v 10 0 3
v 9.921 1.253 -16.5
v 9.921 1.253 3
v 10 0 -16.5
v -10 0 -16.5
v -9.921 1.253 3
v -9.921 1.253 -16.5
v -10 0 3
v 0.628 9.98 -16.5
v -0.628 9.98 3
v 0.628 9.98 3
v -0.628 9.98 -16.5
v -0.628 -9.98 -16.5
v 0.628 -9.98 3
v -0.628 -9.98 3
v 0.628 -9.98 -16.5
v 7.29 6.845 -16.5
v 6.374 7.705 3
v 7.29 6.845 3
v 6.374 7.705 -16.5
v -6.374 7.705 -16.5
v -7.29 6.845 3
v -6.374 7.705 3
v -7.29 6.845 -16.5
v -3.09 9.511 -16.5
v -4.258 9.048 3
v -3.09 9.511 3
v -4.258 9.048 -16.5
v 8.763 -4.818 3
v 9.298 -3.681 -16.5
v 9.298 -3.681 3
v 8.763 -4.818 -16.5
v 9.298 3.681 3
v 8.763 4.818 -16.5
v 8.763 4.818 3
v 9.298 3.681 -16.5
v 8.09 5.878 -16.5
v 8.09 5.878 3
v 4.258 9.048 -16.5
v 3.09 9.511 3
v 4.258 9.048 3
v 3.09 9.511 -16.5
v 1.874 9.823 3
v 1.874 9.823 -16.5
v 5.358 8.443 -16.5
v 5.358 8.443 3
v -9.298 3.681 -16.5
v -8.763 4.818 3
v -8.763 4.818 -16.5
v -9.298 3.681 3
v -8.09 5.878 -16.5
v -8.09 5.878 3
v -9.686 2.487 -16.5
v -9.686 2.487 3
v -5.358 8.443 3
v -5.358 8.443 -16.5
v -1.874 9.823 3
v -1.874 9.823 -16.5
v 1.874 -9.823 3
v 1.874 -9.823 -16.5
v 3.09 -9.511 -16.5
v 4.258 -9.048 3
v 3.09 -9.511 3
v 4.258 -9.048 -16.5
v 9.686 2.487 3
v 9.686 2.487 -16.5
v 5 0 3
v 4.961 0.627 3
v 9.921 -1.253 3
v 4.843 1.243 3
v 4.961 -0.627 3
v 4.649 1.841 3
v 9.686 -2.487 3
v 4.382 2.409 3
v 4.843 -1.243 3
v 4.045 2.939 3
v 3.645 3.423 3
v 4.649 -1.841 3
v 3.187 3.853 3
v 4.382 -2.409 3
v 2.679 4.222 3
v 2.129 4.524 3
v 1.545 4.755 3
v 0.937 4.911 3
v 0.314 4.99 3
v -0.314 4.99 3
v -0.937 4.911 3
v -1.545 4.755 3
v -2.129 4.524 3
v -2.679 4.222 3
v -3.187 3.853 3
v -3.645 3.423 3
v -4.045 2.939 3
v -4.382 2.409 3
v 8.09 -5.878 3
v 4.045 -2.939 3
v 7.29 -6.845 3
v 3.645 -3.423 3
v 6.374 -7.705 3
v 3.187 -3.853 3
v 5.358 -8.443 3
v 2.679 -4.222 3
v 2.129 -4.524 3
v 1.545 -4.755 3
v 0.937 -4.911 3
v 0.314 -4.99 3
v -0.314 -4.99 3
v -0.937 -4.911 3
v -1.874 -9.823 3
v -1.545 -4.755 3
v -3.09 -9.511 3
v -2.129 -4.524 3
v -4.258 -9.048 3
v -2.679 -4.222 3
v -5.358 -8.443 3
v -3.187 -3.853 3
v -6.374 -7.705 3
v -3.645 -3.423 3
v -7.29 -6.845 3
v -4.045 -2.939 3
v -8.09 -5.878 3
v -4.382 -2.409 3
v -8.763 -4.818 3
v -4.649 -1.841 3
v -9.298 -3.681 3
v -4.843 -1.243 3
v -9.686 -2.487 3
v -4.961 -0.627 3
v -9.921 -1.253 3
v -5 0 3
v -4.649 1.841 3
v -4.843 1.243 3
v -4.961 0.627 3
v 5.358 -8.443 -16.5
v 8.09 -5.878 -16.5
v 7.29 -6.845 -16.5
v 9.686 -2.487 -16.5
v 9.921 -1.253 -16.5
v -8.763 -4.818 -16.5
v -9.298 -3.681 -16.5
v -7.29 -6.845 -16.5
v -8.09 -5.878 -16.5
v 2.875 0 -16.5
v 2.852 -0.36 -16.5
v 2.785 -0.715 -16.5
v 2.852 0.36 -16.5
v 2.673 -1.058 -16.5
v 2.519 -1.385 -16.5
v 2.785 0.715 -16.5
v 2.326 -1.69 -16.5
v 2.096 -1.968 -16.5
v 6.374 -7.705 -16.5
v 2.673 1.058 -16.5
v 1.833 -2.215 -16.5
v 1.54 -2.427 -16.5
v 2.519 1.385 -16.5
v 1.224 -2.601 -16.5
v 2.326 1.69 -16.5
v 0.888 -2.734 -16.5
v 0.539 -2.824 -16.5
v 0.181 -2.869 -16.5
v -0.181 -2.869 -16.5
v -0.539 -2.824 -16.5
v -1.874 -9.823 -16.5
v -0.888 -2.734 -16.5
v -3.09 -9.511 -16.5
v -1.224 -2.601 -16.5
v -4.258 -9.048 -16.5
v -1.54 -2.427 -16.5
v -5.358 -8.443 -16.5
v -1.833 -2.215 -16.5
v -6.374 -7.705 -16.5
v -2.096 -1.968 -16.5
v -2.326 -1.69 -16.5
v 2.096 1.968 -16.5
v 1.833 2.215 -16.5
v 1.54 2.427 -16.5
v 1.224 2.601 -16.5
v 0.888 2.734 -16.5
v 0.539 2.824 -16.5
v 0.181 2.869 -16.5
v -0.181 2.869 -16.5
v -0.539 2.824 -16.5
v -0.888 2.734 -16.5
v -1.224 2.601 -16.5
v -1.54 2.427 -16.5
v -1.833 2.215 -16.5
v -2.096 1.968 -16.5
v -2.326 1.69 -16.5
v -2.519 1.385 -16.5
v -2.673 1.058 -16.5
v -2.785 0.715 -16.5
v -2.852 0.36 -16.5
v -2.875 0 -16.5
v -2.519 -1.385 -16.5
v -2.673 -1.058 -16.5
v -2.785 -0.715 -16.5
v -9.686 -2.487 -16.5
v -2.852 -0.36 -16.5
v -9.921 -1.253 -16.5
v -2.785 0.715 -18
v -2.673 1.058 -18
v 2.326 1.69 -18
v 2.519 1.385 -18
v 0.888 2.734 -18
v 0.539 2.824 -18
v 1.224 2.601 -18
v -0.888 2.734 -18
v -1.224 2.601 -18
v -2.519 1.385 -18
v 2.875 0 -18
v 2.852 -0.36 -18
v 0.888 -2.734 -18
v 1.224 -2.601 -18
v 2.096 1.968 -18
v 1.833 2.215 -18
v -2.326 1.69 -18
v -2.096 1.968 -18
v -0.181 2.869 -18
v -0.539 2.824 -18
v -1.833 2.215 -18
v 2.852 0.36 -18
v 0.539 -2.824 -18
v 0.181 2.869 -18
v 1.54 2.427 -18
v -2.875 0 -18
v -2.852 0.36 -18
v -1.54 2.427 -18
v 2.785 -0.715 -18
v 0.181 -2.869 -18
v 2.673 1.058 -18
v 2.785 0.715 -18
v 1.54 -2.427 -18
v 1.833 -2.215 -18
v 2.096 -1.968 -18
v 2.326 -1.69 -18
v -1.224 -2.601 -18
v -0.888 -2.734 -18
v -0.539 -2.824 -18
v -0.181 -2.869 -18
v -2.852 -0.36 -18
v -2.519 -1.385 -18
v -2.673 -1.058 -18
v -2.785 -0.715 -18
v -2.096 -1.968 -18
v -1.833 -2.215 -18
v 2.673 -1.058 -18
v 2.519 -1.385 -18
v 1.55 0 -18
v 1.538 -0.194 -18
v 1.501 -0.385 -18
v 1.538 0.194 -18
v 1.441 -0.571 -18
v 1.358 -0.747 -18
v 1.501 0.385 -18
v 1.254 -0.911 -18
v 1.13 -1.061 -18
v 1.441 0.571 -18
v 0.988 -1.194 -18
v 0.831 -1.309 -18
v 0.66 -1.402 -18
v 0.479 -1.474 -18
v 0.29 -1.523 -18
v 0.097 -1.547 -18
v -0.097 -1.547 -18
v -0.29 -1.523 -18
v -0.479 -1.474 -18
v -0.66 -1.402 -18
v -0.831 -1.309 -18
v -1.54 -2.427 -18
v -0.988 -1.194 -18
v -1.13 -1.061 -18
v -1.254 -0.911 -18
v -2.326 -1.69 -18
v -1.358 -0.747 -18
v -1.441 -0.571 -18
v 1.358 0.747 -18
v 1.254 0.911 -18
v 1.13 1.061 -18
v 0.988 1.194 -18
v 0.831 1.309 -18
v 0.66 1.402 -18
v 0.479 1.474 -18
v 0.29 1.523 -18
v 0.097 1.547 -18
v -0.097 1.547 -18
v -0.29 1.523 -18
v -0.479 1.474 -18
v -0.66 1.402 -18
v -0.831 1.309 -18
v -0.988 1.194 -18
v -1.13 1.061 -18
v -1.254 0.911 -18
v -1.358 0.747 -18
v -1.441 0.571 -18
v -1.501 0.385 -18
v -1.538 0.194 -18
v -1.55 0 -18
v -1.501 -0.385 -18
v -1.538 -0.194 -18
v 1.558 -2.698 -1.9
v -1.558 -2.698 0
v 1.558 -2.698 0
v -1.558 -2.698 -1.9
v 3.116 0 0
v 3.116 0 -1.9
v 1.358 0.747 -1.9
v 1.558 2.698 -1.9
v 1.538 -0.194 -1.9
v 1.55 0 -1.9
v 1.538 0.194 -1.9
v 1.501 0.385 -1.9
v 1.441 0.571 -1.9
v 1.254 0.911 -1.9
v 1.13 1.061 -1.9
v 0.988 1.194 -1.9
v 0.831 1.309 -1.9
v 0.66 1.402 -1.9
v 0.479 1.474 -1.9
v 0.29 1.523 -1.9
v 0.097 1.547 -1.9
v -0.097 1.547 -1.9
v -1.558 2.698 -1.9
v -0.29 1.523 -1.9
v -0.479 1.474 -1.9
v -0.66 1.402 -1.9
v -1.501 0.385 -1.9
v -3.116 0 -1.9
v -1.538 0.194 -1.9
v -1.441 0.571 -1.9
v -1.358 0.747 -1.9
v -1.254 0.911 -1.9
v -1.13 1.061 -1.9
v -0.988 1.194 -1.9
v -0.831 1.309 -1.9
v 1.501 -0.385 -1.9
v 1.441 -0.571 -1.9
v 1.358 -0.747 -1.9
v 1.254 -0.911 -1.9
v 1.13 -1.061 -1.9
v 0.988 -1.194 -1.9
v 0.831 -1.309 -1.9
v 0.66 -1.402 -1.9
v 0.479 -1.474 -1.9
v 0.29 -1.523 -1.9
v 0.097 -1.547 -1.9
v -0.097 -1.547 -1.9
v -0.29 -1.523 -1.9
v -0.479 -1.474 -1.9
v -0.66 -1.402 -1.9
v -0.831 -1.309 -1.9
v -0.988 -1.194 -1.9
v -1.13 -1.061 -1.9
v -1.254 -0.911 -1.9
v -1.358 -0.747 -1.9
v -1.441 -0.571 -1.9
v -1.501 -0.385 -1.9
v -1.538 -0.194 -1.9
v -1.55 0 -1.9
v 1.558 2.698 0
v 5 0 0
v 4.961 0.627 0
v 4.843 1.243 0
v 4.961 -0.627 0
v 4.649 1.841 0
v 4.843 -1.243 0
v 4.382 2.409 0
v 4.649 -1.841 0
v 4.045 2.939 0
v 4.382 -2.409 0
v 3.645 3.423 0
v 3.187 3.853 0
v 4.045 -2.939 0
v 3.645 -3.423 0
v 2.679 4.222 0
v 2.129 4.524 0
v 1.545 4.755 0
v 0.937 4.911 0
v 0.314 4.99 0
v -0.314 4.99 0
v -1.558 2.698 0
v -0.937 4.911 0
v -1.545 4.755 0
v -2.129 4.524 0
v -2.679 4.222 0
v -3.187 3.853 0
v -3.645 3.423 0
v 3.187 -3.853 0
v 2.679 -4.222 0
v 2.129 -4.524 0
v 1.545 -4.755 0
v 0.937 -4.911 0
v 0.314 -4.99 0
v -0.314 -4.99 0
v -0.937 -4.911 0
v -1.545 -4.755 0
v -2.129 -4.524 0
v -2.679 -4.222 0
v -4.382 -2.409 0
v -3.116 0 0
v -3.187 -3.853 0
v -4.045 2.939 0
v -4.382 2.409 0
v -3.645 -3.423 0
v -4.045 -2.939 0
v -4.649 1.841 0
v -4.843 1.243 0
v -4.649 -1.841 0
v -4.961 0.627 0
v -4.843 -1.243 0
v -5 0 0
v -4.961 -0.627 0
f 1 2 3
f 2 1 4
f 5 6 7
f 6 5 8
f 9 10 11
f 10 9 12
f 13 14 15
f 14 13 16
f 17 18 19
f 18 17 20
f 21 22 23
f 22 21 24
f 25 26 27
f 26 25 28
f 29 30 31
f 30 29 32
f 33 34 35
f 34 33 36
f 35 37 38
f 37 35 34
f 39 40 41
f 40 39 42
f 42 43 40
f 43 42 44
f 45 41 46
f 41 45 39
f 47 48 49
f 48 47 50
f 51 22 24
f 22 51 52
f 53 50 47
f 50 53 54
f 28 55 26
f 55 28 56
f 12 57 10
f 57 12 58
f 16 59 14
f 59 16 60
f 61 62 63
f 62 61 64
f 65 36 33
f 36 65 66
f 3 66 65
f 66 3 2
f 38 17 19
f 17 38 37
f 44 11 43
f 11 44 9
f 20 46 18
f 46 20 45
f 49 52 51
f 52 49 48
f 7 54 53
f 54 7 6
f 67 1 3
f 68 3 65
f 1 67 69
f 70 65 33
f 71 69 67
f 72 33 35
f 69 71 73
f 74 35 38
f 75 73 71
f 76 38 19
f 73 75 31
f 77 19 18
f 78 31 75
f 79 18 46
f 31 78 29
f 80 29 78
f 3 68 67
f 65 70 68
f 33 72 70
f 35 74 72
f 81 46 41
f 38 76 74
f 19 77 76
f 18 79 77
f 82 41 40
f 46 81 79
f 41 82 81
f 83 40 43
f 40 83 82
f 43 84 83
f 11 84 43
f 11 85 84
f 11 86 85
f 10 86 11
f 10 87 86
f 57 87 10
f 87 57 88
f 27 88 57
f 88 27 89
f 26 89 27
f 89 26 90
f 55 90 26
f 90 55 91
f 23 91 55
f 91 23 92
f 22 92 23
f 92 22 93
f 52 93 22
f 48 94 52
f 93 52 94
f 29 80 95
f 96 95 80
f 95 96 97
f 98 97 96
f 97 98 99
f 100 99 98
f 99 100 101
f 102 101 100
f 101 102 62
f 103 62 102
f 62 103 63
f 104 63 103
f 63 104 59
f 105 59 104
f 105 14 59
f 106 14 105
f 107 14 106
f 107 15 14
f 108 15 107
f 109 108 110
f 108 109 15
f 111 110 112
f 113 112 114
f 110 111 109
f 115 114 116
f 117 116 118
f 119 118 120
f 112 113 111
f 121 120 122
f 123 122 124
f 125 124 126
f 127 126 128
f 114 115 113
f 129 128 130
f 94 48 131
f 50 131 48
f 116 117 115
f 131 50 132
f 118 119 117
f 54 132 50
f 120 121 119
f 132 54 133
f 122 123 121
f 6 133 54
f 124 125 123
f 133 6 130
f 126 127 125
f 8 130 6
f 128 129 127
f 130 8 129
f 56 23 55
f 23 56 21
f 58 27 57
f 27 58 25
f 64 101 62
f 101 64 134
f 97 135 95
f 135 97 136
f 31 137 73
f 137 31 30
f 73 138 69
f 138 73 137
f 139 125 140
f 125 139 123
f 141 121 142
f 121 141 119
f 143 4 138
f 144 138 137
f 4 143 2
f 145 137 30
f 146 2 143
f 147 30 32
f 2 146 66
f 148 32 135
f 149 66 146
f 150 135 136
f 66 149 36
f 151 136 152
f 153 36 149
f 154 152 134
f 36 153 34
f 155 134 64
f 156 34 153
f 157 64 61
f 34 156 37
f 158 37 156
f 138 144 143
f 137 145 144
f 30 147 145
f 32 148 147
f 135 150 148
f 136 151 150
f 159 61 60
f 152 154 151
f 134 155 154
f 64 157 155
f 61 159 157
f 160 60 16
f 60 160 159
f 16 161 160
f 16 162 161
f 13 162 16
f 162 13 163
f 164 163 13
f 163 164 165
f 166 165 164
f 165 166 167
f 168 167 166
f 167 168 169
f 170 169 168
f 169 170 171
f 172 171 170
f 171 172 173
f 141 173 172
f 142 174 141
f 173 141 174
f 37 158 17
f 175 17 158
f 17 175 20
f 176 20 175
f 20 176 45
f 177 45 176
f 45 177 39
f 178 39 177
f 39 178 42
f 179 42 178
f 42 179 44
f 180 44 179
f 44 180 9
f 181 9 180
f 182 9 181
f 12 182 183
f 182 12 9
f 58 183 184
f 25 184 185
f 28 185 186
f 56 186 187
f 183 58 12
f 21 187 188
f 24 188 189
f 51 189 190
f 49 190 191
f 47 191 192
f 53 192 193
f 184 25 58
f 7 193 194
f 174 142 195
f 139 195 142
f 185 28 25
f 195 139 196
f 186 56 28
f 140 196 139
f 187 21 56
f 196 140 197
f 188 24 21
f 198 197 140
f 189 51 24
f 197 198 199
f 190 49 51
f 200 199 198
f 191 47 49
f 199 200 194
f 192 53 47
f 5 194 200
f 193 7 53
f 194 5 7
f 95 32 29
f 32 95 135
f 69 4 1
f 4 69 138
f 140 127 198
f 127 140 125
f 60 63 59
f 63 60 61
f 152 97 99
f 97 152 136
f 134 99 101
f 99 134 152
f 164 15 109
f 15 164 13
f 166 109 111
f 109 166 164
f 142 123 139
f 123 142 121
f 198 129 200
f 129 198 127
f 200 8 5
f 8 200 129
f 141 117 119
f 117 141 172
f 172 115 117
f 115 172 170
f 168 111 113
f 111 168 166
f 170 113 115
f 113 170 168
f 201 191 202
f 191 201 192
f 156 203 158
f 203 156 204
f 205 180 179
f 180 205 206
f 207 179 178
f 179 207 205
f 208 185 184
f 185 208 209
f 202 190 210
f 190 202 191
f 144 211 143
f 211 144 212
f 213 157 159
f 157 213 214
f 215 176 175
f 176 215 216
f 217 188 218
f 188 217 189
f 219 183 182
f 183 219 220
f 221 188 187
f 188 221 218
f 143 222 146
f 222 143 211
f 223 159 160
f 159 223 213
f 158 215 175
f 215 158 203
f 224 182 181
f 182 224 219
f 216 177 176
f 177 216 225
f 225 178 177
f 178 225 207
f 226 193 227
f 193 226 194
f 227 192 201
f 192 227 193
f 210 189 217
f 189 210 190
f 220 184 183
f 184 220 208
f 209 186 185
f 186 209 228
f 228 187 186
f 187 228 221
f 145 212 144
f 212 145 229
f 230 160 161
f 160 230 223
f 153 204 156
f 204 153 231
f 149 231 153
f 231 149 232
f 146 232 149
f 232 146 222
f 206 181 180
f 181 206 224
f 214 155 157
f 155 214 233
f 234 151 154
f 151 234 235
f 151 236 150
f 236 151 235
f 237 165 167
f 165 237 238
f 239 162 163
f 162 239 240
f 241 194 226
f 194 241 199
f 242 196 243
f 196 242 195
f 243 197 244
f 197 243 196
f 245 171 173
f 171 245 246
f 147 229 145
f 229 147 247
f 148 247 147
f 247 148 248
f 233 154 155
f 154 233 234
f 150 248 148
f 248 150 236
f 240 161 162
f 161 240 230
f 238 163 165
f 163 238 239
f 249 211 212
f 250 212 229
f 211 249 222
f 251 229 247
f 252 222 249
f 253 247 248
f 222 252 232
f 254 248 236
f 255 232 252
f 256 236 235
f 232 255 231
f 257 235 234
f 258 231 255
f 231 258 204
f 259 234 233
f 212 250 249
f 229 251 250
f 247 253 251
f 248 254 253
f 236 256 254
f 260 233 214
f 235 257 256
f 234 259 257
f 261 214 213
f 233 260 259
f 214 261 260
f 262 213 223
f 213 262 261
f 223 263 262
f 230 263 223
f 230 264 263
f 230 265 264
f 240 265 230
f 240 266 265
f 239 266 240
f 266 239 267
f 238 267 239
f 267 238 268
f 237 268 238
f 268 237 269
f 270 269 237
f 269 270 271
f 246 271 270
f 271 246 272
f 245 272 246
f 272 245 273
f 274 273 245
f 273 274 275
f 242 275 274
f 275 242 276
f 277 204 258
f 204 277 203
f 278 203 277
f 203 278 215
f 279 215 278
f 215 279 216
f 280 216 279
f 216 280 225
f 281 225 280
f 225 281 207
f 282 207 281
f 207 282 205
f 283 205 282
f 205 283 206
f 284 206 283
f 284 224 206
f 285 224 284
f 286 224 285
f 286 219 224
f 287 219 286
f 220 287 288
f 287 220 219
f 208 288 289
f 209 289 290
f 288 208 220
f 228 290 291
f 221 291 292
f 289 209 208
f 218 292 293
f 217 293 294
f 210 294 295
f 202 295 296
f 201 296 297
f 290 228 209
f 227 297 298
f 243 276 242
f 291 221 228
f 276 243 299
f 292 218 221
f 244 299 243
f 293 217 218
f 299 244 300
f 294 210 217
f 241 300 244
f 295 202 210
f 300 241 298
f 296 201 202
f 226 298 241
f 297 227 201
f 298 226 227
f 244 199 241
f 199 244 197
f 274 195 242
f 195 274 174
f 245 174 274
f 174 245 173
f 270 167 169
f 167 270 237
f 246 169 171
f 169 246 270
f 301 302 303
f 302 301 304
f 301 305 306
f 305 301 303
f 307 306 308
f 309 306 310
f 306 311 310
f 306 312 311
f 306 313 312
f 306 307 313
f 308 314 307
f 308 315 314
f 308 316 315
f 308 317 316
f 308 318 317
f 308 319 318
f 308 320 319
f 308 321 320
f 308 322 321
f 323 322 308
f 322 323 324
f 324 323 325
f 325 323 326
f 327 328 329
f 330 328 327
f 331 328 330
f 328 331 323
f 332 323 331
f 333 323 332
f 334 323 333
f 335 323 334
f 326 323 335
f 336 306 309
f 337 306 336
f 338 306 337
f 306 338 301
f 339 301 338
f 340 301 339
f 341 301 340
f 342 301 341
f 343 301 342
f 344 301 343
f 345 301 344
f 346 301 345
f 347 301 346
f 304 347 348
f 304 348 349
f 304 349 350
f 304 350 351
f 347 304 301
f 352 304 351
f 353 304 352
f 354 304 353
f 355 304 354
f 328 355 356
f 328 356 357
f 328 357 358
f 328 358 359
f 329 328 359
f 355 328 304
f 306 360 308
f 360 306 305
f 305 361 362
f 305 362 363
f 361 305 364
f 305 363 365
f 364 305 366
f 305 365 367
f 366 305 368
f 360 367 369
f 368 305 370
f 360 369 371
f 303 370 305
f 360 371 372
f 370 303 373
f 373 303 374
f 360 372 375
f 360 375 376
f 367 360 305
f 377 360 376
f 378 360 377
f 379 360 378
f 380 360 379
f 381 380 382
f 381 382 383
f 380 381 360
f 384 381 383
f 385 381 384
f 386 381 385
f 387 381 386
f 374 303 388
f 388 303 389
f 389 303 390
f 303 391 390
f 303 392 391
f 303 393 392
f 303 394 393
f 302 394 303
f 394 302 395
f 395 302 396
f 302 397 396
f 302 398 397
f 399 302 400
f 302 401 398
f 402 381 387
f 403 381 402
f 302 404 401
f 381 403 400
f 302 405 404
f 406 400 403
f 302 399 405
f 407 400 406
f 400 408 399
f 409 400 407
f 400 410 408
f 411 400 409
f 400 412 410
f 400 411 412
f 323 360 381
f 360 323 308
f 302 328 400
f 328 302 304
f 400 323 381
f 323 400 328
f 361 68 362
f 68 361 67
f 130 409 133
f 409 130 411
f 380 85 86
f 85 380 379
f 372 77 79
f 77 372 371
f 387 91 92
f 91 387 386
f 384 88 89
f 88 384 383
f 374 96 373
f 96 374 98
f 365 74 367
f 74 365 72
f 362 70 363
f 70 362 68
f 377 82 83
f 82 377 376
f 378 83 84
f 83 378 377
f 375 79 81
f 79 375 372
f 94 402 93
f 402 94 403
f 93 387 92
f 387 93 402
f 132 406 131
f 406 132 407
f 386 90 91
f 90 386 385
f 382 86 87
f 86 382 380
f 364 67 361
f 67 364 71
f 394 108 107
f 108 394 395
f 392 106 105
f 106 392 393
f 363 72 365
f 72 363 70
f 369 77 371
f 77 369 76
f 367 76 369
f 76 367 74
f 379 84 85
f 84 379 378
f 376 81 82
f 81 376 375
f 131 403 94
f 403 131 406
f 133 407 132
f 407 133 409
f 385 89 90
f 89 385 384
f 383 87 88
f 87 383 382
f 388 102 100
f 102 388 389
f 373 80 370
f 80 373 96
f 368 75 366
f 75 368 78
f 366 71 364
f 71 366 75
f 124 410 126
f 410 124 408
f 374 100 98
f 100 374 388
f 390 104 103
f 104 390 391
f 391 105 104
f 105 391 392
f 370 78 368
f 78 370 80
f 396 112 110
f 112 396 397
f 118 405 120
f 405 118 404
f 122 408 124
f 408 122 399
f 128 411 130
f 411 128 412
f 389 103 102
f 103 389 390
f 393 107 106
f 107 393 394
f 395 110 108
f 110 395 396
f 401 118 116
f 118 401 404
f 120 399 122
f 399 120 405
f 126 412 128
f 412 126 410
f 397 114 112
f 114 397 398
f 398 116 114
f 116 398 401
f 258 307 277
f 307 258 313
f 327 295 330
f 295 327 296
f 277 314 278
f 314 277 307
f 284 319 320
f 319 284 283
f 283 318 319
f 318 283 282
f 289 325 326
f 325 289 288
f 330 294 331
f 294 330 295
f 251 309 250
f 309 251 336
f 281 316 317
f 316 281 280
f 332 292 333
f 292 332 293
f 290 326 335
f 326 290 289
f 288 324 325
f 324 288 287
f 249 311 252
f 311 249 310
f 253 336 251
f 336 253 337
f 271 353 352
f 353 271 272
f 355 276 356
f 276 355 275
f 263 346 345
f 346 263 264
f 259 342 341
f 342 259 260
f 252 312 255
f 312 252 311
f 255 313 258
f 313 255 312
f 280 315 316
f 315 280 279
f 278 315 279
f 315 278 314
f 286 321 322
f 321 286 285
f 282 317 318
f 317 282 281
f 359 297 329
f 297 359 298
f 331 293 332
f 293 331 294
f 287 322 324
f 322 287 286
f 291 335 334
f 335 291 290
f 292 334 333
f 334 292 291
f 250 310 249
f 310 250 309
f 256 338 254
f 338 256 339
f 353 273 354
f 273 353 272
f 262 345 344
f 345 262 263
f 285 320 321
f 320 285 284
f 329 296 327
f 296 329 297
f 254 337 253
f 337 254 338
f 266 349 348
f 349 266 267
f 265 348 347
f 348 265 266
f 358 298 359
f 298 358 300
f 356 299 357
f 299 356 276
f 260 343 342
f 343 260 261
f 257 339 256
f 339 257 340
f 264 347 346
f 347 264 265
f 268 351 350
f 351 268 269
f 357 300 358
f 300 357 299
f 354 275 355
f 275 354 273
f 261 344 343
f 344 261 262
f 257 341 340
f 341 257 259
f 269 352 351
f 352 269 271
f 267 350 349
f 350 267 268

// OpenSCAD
$fn = 50;


difference() {
	union() {
		translate(v = [0, 0, -16.5000000000]) {
			cylinder(h = 19.5000000000, r = 10.0000000000);
		}
		#translate(v = [0, 0, -18.0000000000]) {
			cylinder(h = 18, r = 2.8750000000);
		}
	}
	union() {
		translate(v = [0, 0, 0]) {
			rotate(a = [0, 0, 0]) {
				difference() {
					union() {
						translate(v = [0, 0, -1.9000000000]) {
							linear_extrude(height = 1.9000000000) {
								polygon(points = [[3.1158000000, 0.0000000000], [1.5579000000, 2.6983619531], [-1.5579000000, 2.6983619531], [-3.1158000000, 0.0000000000], [-1.5579000000, -2.6983619531], [1.5579000000, -2.6983619531]]);
							}
						}
					}
					union();
				}
			}
		}
		#cylinder(h = 3, r = 5.0000000000);
		#translate(v = [0, 0, -100.0000000000]) {
			cylinder(h = 200, r = 1.5500000000);
		}
	}
}
